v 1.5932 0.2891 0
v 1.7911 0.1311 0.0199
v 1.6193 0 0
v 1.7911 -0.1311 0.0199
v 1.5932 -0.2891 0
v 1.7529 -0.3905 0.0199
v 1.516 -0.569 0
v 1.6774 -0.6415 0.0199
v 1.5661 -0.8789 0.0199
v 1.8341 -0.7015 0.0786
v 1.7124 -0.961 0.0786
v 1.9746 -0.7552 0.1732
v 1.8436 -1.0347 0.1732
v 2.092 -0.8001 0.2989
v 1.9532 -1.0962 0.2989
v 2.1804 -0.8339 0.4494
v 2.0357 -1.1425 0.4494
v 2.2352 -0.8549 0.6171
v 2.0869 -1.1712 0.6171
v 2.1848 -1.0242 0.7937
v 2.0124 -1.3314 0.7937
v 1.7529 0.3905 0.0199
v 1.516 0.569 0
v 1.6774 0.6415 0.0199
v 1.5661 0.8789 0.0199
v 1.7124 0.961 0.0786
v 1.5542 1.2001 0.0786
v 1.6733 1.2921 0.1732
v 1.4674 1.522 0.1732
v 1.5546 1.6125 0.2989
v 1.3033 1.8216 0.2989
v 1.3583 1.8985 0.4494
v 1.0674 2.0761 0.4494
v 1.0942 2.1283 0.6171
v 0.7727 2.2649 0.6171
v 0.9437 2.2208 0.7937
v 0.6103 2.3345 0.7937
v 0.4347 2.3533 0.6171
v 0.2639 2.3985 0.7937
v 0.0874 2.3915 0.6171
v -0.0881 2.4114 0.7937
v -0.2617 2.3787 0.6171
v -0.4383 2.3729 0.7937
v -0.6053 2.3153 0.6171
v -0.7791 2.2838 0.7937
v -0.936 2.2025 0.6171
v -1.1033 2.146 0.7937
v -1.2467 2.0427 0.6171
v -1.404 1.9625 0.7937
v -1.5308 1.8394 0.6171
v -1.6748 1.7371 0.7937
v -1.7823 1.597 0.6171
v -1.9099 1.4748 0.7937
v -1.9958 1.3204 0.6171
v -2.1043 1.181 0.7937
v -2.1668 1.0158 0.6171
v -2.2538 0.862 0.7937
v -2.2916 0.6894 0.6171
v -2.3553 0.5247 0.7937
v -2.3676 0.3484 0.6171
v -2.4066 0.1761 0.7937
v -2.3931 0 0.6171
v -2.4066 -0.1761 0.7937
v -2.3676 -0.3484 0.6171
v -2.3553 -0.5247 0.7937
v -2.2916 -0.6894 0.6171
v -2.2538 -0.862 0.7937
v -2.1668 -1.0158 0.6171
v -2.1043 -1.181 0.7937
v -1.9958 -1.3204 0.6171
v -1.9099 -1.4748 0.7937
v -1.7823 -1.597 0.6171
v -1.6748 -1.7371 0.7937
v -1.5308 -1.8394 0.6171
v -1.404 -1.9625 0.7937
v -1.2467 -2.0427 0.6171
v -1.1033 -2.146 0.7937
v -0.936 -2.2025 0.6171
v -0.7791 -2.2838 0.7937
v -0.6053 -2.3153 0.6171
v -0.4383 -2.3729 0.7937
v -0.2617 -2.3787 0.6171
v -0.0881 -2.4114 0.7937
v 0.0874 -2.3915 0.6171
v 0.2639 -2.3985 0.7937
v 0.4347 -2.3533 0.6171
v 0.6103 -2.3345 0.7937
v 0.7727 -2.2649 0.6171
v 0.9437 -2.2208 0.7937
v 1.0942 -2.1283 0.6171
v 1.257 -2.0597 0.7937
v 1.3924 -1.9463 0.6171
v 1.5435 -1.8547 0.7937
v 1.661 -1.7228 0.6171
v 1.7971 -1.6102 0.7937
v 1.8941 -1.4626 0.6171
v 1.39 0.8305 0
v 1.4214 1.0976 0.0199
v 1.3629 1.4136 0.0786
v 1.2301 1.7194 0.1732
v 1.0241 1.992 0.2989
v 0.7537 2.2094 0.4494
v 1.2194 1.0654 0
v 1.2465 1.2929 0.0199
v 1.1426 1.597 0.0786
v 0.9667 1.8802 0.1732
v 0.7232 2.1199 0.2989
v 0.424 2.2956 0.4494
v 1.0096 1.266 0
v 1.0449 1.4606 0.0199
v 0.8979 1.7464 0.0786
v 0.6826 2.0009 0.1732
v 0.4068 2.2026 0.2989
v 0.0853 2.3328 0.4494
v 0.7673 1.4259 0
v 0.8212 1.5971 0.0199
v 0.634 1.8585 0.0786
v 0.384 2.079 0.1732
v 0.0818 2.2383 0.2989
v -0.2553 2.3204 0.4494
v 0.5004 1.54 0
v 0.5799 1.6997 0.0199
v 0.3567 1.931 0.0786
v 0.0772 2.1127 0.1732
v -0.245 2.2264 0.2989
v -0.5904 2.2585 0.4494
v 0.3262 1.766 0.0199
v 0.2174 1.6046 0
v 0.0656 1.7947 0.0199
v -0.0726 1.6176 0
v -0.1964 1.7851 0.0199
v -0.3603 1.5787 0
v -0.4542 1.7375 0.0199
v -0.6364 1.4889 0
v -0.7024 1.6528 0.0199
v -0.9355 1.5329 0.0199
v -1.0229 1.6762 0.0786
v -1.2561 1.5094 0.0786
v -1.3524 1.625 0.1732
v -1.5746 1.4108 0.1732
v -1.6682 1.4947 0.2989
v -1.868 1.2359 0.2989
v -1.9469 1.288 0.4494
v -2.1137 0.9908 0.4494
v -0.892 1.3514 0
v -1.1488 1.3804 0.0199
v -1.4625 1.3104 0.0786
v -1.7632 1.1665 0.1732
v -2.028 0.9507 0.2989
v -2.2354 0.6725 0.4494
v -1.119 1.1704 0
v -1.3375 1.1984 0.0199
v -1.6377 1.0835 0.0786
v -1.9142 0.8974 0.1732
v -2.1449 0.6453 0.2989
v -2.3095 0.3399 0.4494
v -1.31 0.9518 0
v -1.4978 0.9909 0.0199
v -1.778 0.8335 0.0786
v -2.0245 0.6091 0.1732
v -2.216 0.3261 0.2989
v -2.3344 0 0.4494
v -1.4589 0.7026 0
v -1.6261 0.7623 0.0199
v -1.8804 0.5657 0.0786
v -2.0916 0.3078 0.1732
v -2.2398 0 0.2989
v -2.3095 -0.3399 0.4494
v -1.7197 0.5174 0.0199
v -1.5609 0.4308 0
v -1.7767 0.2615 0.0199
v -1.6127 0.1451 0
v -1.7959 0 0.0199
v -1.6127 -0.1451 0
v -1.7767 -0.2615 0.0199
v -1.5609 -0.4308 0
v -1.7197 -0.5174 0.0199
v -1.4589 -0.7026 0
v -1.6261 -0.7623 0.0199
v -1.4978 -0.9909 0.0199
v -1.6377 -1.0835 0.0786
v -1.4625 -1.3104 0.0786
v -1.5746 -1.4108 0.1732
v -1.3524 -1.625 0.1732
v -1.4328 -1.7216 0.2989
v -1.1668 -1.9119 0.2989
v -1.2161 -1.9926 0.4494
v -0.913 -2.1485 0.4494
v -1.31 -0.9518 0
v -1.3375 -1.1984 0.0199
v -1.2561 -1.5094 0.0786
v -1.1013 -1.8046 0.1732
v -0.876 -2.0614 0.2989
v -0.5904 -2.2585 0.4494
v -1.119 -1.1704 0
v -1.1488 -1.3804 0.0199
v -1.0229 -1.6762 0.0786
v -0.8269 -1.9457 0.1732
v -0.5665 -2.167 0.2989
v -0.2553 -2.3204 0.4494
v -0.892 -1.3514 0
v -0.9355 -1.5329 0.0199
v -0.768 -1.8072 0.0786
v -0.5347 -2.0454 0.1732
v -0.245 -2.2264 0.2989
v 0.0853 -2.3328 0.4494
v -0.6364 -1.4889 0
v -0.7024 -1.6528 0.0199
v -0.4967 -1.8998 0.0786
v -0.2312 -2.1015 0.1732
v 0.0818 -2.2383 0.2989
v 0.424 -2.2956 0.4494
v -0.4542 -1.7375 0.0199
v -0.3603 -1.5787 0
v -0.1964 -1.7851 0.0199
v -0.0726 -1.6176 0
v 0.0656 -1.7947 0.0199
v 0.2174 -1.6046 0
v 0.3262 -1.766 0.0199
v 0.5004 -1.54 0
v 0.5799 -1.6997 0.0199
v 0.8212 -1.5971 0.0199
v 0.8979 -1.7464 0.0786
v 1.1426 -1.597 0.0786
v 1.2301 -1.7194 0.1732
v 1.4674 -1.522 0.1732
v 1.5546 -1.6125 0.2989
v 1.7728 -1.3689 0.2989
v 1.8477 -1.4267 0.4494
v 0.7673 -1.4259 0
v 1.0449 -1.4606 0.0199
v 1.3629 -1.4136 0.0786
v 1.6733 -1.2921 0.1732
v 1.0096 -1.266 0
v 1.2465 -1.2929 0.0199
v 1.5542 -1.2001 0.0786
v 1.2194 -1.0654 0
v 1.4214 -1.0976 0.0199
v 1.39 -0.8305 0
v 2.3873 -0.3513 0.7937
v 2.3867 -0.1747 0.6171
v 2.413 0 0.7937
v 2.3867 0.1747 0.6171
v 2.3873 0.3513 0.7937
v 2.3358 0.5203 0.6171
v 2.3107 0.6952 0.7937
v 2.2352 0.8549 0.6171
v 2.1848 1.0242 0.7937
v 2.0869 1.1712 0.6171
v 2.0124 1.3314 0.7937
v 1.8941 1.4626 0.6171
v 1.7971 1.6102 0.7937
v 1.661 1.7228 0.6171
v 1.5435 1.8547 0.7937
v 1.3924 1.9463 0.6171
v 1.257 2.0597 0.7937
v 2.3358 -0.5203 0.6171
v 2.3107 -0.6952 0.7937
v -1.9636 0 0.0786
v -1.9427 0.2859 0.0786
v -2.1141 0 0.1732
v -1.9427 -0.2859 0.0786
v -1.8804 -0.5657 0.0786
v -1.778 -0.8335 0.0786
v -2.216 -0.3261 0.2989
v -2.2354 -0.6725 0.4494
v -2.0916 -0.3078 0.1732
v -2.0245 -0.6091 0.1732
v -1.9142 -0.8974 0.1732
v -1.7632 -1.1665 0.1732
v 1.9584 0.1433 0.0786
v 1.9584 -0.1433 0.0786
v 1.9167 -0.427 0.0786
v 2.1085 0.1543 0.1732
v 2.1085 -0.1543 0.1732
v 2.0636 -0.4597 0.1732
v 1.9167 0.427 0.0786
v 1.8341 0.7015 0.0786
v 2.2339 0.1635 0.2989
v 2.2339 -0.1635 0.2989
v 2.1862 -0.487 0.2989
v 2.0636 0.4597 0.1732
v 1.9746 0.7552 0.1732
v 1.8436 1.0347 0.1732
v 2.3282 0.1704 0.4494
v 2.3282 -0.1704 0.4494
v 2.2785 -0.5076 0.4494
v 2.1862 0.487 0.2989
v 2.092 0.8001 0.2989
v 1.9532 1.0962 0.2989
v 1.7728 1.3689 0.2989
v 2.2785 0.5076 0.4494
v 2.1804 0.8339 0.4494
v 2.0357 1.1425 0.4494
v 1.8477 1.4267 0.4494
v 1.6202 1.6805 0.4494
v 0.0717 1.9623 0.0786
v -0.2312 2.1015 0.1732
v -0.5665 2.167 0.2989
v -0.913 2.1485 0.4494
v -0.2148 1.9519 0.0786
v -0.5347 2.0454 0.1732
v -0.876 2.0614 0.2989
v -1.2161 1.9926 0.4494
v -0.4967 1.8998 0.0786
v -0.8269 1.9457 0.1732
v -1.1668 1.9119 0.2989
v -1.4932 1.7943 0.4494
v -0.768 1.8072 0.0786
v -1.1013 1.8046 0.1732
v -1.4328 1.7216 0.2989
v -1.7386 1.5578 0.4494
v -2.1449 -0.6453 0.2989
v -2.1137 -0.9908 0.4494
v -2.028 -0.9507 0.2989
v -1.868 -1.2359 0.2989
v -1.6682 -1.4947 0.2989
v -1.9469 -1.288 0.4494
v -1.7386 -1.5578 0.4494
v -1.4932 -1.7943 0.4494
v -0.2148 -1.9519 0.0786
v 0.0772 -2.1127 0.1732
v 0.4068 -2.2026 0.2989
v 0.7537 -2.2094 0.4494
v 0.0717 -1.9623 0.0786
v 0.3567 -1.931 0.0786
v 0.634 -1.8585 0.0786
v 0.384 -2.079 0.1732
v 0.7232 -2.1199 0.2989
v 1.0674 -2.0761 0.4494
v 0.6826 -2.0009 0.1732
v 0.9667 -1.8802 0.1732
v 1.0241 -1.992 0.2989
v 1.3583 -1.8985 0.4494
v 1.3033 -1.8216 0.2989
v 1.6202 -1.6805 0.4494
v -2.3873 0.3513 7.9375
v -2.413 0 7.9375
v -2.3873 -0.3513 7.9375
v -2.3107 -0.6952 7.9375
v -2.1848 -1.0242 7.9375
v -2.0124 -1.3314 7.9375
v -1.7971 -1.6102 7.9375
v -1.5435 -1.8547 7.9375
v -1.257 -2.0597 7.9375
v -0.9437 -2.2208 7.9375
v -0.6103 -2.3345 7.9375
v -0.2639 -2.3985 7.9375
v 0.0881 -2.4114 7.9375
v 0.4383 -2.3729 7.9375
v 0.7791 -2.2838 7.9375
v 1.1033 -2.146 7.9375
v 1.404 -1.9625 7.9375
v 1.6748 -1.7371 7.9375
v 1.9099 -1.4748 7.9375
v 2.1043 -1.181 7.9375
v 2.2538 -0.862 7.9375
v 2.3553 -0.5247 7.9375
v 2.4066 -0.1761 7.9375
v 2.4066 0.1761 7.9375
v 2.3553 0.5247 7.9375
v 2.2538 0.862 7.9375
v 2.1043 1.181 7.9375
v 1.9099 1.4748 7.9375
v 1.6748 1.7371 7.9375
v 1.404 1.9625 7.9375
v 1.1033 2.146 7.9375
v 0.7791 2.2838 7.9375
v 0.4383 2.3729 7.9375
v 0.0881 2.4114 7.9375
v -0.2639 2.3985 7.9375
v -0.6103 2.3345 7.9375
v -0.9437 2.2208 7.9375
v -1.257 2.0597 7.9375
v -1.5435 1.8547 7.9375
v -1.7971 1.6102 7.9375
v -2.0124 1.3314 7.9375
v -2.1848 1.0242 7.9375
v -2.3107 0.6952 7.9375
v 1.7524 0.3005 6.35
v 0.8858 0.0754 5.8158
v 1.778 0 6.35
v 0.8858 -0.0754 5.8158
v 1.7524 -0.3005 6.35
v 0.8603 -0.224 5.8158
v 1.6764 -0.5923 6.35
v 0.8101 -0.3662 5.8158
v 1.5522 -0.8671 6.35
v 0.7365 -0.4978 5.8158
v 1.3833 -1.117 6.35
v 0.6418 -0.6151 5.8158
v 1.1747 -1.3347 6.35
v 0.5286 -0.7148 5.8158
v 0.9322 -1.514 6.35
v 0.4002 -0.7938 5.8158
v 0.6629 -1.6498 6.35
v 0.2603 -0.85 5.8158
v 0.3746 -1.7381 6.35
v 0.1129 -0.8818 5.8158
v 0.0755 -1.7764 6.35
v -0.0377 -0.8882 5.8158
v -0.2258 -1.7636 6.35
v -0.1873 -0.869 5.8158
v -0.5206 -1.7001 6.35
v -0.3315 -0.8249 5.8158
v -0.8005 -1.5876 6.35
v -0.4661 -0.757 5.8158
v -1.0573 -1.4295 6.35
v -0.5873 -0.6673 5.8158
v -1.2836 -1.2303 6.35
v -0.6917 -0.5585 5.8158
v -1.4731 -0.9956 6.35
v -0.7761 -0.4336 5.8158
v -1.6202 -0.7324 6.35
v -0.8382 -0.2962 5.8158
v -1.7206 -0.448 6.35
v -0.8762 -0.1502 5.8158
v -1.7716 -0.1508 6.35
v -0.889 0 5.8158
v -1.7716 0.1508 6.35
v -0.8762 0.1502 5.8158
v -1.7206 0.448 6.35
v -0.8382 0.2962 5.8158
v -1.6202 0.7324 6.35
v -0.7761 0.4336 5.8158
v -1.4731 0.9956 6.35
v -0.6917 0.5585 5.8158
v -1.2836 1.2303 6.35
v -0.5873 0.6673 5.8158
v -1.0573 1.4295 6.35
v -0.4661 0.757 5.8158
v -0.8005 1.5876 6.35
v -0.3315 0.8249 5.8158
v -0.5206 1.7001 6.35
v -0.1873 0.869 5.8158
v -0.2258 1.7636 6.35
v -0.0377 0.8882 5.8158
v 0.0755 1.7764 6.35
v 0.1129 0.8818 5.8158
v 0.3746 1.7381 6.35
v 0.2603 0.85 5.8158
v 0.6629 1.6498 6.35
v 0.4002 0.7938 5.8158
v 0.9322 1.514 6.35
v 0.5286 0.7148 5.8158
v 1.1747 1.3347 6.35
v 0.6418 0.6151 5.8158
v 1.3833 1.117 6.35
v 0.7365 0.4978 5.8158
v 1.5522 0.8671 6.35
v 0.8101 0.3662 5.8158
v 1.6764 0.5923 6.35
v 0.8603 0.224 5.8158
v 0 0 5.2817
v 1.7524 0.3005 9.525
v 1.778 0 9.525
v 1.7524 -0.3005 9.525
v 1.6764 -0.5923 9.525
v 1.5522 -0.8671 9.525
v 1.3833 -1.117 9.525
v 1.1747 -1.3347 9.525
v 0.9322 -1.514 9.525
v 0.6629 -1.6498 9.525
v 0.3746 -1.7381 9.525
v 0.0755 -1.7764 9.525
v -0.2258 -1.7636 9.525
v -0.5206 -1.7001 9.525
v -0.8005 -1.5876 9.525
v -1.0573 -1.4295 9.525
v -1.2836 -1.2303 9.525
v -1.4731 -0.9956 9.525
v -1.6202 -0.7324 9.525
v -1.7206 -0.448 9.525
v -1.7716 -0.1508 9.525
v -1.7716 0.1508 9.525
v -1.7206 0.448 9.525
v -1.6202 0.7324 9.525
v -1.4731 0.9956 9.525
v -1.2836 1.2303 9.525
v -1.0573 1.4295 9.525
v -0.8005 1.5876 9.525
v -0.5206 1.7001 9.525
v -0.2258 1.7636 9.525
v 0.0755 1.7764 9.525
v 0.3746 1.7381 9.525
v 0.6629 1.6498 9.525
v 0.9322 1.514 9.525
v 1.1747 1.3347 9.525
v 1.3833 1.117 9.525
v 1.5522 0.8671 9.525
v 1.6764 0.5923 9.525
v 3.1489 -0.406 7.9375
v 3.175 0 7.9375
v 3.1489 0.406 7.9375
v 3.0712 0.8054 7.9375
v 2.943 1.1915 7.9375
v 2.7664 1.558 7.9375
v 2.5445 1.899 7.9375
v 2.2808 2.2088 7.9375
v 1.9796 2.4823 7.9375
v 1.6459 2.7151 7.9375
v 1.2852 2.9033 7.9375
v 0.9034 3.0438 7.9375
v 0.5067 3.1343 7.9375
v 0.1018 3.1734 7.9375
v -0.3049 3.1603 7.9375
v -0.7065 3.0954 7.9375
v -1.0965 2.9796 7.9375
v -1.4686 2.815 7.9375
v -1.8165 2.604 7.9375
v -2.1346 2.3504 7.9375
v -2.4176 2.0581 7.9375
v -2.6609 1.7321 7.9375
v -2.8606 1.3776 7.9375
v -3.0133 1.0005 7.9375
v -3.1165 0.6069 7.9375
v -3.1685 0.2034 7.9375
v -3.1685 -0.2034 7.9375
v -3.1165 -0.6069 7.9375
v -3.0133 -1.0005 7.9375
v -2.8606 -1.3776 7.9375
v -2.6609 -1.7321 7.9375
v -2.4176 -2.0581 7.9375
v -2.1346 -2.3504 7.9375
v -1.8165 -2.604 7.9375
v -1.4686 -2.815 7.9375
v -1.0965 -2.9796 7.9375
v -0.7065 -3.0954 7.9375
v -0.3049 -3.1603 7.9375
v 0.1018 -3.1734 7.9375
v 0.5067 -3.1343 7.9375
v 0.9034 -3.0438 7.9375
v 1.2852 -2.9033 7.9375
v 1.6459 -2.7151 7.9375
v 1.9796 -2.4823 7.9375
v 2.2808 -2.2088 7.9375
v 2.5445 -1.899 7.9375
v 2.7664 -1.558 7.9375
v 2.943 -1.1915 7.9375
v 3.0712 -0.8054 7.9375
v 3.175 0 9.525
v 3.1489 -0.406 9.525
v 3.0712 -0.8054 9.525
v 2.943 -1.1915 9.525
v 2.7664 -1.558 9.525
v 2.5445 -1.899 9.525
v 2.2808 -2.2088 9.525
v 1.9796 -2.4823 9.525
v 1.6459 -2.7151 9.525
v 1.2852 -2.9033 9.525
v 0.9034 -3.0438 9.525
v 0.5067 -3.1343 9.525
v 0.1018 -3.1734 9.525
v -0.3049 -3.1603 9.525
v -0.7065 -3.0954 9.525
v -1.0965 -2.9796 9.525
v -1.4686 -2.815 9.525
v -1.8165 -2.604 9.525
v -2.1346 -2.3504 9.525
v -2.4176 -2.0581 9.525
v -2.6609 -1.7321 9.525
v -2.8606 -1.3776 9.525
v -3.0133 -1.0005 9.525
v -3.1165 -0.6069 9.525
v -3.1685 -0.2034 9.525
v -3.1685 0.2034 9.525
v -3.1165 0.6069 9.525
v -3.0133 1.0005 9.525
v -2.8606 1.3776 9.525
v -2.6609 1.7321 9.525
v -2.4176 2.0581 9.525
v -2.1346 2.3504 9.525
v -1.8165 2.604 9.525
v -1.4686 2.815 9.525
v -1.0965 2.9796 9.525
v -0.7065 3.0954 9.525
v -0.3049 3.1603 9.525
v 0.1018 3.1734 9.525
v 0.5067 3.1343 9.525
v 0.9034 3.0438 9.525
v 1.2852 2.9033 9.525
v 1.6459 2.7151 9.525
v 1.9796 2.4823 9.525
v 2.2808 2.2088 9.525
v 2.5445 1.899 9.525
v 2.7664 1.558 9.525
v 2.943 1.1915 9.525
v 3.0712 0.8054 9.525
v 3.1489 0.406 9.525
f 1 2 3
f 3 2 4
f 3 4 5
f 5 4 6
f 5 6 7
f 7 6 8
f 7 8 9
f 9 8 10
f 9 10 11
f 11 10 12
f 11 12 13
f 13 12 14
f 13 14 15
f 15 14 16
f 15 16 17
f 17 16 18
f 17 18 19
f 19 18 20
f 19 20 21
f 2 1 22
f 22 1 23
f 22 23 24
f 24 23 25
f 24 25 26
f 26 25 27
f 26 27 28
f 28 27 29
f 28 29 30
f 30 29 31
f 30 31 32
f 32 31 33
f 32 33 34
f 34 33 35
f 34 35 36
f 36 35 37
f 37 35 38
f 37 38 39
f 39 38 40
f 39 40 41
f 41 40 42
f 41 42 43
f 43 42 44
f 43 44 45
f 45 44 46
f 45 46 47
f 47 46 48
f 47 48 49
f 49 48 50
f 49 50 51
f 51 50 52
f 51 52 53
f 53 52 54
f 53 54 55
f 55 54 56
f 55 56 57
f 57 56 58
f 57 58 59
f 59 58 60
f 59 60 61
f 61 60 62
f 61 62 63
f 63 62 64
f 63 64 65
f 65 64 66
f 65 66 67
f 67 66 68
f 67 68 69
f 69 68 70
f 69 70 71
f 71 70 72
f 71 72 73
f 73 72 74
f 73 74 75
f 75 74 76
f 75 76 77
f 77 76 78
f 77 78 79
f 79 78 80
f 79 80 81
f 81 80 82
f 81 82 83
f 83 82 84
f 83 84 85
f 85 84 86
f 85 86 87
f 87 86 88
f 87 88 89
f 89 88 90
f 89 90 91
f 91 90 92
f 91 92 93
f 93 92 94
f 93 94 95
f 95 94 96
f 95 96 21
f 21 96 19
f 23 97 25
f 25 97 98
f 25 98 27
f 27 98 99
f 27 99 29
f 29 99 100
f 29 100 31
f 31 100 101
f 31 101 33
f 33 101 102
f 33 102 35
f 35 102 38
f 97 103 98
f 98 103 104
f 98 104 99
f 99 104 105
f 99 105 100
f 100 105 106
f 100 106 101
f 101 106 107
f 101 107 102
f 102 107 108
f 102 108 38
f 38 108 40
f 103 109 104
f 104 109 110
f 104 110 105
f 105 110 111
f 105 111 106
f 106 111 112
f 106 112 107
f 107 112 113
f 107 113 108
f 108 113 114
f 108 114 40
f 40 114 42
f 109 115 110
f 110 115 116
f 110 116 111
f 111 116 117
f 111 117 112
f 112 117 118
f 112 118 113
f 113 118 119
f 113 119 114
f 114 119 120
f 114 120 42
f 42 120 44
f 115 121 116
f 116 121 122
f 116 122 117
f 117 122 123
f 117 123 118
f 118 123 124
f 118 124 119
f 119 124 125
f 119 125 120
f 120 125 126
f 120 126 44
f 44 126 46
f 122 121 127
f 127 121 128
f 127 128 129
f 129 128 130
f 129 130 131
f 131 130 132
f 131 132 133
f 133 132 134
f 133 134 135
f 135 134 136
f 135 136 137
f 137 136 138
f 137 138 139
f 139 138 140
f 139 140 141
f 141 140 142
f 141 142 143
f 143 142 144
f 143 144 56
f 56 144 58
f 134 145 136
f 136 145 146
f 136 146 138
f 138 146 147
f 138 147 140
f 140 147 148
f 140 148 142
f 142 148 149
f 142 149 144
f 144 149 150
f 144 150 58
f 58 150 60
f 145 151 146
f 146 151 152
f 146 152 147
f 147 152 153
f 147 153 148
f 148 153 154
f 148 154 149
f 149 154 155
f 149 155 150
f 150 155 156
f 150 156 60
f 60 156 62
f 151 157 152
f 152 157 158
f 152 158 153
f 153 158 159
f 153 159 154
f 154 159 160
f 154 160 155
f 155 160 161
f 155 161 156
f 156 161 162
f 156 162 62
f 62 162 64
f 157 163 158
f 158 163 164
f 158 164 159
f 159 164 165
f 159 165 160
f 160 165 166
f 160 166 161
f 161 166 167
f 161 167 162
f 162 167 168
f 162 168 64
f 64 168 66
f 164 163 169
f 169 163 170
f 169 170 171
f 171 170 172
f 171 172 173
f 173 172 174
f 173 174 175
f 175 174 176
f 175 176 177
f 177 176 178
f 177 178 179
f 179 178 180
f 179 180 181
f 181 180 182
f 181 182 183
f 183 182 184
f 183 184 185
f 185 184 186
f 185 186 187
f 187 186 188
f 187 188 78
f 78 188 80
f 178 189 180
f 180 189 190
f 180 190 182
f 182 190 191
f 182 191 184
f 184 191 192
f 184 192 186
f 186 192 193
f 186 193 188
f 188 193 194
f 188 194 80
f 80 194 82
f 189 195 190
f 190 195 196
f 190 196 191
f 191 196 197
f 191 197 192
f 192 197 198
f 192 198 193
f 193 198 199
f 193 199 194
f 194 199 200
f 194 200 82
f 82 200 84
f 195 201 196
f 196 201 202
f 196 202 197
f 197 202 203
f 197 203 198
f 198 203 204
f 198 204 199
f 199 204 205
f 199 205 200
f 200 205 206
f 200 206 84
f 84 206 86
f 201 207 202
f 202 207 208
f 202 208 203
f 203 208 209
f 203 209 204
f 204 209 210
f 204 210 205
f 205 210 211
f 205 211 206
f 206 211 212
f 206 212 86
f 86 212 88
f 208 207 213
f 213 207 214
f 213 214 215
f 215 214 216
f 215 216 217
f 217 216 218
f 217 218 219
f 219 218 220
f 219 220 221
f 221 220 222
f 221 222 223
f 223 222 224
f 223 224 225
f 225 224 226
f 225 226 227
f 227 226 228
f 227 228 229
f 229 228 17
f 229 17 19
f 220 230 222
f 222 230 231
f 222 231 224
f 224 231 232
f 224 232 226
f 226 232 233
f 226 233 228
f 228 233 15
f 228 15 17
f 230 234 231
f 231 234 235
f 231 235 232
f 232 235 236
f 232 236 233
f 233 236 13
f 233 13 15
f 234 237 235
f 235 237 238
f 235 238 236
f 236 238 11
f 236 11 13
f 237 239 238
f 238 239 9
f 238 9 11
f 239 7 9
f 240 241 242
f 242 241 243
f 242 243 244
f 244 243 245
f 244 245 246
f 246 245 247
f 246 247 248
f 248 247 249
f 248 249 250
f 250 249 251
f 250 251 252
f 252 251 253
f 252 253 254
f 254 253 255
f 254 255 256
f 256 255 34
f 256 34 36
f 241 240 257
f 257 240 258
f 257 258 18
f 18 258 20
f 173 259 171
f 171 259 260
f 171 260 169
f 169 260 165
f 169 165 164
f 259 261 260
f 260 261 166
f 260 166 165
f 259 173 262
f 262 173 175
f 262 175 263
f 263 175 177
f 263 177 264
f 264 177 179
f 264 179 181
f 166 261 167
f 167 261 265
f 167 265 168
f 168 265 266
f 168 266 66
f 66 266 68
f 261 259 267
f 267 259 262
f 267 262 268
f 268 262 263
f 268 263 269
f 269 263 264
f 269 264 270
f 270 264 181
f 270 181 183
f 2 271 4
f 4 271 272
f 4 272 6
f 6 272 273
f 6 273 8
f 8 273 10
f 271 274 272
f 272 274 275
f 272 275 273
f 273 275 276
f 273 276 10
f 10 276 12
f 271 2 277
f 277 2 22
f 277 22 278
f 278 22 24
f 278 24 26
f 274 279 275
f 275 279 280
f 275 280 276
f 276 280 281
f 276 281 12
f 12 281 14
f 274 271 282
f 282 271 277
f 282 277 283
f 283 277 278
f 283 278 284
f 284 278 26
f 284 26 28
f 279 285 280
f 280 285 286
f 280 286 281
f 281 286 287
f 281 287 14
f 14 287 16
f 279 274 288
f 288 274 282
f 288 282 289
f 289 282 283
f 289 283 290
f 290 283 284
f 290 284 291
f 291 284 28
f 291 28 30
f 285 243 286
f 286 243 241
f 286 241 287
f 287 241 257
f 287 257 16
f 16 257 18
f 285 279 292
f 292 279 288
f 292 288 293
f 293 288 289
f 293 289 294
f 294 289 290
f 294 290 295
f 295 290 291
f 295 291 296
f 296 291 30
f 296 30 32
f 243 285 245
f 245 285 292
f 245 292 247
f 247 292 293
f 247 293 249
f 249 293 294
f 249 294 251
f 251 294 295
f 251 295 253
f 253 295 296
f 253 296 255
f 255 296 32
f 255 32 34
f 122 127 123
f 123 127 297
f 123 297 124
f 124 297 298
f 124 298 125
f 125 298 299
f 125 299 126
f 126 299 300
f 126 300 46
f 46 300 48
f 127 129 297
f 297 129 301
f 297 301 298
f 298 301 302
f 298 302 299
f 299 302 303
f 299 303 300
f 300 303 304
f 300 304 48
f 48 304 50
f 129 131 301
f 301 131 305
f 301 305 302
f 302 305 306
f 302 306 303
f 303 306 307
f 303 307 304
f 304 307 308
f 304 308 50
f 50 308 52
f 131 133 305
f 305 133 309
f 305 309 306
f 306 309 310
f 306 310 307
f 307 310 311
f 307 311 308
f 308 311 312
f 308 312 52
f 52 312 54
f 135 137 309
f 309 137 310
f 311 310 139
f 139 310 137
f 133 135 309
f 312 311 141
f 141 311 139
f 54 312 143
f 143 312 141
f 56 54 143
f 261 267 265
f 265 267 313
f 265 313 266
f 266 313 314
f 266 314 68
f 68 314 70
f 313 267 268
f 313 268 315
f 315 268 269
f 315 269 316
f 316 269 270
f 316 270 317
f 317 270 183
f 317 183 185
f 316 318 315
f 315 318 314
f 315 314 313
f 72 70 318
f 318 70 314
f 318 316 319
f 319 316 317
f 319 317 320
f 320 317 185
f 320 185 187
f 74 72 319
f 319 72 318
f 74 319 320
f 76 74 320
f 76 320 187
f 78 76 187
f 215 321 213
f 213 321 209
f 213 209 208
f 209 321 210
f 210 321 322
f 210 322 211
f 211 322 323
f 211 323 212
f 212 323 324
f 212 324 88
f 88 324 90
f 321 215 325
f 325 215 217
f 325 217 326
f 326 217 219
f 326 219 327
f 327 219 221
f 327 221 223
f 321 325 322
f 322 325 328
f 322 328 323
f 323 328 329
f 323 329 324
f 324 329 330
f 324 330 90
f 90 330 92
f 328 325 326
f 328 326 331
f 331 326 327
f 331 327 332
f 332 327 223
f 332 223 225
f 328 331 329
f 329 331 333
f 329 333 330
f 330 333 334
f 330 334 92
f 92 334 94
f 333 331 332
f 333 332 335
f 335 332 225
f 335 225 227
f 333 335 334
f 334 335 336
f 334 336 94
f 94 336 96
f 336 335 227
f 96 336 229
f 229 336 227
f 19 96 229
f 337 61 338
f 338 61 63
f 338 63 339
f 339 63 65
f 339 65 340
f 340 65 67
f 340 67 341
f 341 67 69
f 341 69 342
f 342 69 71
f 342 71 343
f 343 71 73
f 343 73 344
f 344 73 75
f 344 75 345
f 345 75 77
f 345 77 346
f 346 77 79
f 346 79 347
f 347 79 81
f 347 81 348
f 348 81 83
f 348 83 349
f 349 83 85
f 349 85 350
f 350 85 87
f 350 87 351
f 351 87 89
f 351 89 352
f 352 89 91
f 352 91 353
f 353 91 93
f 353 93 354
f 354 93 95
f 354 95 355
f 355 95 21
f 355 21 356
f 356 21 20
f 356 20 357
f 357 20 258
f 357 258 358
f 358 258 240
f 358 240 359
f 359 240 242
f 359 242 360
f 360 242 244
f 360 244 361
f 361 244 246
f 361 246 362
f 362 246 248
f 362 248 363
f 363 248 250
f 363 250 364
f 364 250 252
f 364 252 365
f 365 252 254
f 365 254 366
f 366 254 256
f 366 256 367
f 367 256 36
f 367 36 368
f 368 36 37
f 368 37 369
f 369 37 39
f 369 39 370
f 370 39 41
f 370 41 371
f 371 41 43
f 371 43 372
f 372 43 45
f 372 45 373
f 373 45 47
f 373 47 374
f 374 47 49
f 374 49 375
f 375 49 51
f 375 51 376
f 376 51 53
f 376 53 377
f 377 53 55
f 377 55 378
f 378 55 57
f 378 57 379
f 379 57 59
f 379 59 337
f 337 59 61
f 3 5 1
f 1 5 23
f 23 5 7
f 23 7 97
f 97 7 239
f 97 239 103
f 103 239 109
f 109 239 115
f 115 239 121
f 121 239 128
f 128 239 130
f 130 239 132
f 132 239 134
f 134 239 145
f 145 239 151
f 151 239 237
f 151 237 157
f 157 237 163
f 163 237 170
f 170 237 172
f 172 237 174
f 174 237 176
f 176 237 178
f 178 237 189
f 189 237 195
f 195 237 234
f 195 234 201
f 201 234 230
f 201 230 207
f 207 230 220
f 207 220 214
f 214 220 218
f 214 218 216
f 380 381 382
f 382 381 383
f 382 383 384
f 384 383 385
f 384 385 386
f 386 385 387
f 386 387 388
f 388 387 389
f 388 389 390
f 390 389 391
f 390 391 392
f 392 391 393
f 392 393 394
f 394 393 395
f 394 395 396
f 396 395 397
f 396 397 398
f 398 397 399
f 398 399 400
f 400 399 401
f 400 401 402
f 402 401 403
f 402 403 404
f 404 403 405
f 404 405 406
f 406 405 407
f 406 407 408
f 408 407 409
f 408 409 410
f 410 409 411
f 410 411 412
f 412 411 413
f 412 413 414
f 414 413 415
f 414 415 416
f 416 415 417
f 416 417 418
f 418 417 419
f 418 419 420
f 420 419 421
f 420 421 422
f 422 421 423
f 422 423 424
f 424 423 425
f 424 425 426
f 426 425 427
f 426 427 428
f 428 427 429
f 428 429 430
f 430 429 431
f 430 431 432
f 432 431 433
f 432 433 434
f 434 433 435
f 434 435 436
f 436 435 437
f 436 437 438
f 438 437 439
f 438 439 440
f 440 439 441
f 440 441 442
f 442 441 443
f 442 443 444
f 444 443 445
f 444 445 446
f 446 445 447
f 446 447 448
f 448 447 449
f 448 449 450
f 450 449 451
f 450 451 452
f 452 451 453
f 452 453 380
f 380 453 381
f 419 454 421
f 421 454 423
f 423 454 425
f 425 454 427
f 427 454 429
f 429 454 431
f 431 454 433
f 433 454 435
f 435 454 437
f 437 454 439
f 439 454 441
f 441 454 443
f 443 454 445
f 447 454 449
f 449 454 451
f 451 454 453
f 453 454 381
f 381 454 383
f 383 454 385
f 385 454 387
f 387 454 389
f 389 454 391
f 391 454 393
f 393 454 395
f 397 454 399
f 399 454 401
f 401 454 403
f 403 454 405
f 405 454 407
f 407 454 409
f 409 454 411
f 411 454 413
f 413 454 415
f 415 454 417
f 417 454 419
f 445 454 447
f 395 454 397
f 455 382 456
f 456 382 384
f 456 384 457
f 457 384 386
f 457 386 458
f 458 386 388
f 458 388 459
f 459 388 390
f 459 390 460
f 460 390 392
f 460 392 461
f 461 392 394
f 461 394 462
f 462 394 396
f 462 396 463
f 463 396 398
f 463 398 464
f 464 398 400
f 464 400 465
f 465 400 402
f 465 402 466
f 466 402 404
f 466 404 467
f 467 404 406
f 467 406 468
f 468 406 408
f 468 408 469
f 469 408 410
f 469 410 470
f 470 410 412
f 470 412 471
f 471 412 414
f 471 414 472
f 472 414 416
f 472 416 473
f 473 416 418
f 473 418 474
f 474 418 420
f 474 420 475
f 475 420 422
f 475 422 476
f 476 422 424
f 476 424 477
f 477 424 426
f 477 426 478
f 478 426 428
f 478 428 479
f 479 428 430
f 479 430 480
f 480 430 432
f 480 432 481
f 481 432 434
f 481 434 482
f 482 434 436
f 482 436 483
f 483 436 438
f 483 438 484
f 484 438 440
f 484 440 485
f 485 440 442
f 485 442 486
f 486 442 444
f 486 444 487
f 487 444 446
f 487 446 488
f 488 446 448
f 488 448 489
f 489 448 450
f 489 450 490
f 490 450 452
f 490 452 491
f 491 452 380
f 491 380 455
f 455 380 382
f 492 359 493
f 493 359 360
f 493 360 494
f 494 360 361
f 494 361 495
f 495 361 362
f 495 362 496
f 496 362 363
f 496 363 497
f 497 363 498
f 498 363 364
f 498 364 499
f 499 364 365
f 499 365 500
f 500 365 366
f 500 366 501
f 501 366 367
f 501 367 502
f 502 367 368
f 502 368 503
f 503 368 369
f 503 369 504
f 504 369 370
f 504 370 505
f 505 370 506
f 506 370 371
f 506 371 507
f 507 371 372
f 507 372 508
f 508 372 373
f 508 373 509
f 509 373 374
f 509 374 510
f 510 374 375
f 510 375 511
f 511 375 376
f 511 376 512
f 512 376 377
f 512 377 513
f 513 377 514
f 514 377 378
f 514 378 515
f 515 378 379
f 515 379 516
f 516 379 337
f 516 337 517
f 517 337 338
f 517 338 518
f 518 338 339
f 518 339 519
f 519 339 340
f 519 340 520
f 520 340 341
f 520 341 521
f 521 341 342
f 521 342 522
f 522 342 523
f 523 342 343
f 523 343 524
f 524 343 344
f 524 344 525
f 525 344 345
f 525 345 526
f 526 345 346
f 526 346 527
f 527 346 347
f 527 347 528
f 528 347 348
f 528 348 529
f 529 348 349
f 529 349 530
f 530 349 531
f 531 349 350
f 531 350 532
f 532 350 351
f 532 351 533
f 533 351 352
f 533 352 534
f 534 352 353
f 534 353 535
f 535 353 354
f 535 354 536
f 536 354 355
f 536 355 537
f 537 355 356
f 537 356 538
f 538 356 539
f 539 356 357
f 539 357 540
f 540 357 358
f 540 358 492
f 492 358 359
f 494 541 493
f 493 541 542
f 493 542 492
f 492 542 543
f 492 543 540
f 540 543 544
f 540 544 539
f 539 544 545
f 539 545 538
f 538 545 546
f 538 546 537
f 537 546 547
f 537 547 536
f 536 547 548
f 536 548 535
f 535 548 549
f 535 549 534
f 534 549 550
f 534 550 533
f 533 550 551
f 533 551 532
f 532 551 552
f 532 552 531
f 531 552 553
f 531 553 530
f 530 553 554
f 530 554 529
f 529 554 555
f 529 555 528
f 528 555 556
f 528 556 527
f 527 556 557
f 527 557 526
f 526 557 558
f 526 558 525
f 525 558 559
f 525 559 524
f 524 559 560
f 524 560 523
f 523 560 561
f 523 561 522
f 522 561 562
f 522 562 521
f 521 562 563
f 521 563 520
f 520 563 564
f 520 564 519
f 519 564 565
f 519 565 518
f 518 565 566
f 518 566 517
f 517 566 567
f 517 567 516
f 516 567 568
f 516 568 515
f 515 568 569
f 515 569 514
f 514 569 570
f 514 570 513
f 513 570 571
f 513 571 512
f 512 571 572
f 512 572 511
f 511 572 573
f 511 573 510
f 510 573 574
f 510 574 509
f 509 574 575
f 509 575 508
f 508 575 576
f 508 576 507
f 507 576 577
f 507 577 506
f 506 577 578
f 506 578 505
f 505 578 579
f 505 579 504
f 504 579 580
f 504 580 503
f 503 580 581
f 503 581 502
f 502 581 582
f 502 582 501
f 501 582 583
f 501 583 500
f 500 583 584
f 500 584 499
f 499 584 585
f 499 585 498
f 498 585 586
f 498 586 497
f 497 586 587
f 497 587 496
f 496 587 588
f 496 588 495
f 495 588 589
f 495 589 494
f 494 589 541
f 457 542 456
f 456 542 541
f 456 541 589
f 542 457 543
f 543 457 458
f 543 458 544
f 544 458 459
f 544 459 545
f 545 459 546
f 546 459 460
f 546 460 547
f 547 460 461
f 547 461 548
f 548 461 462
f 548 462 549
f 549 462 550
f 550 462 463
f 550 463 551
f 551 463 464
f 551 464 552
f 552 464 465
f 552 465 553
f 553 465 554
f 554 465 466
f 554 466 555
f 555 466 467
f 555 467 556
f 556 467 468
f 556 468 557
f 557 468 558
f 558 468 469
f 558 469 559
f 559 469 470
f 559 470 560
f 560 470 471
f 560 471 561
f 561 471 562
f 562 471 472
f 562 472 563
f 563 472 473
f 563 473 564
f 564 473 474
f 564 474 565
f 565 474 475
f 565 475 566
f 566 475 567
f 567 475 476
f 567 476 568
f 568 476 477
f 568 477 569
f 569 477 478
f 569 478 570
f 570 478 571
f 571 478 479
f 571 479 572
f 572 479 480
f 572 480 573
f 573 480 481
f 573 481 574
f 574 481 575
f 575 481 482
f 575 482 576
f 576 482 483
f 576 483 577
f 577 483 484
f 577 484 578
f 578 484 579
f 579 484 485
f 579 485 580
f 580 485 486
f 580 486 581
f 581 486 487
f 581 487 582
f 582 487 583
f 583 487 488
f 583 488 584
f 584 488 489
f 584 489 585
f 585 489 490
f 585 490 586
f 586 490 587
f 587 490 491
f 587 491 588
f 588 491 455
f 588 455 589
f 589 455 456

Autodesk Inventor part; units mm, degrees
ref_plane "YZ Plane" through (0, 0, 0) normal (1, 0, 0) x (0, 1, 0)
ref_plane "XZ Plane" through (0, 0, 0) normal (0, 1, 0) x (-1, 0, 0)
ref_plane "XY Plane" through (0, 0, 0) normal (0, 0, 1) x (1, 0, 0)
sketch "Sketch1" plane through (0, 0, 0) normal (0, 0, 1) x (1, 0, 0)
  circle A0 centre (0, 0) radius 2.413
  dimension "d0" = 4.826
extrude "Extrusion1" add sketch "Sketch1" along normal blind 9.525
sketch "Sketch2" plane through (0, 0, 9.525) normal (0, 0, 1) x (1, 0, 0)
  circle A0 centre (0, 0) radius 3.175
  dimension "d3" = 6.35
extrude "Extrusion2" add sketch "Sketch2" against normal blind 1.5875
sketch "Sketch3" plane through (0, 0, 9.525) normal (0, 0, 1) x (1, 0, 0)
  point P0 (0, 0)
hole "Hole1" at (0, 0, 9.525) direction (0, 0, -1) diameter 3.556 depth 3.175 tip angle 118
fillet "Fillet1" radius 0.7937 1 edges at (-2.413, 0, 0)
properties part number "button"
